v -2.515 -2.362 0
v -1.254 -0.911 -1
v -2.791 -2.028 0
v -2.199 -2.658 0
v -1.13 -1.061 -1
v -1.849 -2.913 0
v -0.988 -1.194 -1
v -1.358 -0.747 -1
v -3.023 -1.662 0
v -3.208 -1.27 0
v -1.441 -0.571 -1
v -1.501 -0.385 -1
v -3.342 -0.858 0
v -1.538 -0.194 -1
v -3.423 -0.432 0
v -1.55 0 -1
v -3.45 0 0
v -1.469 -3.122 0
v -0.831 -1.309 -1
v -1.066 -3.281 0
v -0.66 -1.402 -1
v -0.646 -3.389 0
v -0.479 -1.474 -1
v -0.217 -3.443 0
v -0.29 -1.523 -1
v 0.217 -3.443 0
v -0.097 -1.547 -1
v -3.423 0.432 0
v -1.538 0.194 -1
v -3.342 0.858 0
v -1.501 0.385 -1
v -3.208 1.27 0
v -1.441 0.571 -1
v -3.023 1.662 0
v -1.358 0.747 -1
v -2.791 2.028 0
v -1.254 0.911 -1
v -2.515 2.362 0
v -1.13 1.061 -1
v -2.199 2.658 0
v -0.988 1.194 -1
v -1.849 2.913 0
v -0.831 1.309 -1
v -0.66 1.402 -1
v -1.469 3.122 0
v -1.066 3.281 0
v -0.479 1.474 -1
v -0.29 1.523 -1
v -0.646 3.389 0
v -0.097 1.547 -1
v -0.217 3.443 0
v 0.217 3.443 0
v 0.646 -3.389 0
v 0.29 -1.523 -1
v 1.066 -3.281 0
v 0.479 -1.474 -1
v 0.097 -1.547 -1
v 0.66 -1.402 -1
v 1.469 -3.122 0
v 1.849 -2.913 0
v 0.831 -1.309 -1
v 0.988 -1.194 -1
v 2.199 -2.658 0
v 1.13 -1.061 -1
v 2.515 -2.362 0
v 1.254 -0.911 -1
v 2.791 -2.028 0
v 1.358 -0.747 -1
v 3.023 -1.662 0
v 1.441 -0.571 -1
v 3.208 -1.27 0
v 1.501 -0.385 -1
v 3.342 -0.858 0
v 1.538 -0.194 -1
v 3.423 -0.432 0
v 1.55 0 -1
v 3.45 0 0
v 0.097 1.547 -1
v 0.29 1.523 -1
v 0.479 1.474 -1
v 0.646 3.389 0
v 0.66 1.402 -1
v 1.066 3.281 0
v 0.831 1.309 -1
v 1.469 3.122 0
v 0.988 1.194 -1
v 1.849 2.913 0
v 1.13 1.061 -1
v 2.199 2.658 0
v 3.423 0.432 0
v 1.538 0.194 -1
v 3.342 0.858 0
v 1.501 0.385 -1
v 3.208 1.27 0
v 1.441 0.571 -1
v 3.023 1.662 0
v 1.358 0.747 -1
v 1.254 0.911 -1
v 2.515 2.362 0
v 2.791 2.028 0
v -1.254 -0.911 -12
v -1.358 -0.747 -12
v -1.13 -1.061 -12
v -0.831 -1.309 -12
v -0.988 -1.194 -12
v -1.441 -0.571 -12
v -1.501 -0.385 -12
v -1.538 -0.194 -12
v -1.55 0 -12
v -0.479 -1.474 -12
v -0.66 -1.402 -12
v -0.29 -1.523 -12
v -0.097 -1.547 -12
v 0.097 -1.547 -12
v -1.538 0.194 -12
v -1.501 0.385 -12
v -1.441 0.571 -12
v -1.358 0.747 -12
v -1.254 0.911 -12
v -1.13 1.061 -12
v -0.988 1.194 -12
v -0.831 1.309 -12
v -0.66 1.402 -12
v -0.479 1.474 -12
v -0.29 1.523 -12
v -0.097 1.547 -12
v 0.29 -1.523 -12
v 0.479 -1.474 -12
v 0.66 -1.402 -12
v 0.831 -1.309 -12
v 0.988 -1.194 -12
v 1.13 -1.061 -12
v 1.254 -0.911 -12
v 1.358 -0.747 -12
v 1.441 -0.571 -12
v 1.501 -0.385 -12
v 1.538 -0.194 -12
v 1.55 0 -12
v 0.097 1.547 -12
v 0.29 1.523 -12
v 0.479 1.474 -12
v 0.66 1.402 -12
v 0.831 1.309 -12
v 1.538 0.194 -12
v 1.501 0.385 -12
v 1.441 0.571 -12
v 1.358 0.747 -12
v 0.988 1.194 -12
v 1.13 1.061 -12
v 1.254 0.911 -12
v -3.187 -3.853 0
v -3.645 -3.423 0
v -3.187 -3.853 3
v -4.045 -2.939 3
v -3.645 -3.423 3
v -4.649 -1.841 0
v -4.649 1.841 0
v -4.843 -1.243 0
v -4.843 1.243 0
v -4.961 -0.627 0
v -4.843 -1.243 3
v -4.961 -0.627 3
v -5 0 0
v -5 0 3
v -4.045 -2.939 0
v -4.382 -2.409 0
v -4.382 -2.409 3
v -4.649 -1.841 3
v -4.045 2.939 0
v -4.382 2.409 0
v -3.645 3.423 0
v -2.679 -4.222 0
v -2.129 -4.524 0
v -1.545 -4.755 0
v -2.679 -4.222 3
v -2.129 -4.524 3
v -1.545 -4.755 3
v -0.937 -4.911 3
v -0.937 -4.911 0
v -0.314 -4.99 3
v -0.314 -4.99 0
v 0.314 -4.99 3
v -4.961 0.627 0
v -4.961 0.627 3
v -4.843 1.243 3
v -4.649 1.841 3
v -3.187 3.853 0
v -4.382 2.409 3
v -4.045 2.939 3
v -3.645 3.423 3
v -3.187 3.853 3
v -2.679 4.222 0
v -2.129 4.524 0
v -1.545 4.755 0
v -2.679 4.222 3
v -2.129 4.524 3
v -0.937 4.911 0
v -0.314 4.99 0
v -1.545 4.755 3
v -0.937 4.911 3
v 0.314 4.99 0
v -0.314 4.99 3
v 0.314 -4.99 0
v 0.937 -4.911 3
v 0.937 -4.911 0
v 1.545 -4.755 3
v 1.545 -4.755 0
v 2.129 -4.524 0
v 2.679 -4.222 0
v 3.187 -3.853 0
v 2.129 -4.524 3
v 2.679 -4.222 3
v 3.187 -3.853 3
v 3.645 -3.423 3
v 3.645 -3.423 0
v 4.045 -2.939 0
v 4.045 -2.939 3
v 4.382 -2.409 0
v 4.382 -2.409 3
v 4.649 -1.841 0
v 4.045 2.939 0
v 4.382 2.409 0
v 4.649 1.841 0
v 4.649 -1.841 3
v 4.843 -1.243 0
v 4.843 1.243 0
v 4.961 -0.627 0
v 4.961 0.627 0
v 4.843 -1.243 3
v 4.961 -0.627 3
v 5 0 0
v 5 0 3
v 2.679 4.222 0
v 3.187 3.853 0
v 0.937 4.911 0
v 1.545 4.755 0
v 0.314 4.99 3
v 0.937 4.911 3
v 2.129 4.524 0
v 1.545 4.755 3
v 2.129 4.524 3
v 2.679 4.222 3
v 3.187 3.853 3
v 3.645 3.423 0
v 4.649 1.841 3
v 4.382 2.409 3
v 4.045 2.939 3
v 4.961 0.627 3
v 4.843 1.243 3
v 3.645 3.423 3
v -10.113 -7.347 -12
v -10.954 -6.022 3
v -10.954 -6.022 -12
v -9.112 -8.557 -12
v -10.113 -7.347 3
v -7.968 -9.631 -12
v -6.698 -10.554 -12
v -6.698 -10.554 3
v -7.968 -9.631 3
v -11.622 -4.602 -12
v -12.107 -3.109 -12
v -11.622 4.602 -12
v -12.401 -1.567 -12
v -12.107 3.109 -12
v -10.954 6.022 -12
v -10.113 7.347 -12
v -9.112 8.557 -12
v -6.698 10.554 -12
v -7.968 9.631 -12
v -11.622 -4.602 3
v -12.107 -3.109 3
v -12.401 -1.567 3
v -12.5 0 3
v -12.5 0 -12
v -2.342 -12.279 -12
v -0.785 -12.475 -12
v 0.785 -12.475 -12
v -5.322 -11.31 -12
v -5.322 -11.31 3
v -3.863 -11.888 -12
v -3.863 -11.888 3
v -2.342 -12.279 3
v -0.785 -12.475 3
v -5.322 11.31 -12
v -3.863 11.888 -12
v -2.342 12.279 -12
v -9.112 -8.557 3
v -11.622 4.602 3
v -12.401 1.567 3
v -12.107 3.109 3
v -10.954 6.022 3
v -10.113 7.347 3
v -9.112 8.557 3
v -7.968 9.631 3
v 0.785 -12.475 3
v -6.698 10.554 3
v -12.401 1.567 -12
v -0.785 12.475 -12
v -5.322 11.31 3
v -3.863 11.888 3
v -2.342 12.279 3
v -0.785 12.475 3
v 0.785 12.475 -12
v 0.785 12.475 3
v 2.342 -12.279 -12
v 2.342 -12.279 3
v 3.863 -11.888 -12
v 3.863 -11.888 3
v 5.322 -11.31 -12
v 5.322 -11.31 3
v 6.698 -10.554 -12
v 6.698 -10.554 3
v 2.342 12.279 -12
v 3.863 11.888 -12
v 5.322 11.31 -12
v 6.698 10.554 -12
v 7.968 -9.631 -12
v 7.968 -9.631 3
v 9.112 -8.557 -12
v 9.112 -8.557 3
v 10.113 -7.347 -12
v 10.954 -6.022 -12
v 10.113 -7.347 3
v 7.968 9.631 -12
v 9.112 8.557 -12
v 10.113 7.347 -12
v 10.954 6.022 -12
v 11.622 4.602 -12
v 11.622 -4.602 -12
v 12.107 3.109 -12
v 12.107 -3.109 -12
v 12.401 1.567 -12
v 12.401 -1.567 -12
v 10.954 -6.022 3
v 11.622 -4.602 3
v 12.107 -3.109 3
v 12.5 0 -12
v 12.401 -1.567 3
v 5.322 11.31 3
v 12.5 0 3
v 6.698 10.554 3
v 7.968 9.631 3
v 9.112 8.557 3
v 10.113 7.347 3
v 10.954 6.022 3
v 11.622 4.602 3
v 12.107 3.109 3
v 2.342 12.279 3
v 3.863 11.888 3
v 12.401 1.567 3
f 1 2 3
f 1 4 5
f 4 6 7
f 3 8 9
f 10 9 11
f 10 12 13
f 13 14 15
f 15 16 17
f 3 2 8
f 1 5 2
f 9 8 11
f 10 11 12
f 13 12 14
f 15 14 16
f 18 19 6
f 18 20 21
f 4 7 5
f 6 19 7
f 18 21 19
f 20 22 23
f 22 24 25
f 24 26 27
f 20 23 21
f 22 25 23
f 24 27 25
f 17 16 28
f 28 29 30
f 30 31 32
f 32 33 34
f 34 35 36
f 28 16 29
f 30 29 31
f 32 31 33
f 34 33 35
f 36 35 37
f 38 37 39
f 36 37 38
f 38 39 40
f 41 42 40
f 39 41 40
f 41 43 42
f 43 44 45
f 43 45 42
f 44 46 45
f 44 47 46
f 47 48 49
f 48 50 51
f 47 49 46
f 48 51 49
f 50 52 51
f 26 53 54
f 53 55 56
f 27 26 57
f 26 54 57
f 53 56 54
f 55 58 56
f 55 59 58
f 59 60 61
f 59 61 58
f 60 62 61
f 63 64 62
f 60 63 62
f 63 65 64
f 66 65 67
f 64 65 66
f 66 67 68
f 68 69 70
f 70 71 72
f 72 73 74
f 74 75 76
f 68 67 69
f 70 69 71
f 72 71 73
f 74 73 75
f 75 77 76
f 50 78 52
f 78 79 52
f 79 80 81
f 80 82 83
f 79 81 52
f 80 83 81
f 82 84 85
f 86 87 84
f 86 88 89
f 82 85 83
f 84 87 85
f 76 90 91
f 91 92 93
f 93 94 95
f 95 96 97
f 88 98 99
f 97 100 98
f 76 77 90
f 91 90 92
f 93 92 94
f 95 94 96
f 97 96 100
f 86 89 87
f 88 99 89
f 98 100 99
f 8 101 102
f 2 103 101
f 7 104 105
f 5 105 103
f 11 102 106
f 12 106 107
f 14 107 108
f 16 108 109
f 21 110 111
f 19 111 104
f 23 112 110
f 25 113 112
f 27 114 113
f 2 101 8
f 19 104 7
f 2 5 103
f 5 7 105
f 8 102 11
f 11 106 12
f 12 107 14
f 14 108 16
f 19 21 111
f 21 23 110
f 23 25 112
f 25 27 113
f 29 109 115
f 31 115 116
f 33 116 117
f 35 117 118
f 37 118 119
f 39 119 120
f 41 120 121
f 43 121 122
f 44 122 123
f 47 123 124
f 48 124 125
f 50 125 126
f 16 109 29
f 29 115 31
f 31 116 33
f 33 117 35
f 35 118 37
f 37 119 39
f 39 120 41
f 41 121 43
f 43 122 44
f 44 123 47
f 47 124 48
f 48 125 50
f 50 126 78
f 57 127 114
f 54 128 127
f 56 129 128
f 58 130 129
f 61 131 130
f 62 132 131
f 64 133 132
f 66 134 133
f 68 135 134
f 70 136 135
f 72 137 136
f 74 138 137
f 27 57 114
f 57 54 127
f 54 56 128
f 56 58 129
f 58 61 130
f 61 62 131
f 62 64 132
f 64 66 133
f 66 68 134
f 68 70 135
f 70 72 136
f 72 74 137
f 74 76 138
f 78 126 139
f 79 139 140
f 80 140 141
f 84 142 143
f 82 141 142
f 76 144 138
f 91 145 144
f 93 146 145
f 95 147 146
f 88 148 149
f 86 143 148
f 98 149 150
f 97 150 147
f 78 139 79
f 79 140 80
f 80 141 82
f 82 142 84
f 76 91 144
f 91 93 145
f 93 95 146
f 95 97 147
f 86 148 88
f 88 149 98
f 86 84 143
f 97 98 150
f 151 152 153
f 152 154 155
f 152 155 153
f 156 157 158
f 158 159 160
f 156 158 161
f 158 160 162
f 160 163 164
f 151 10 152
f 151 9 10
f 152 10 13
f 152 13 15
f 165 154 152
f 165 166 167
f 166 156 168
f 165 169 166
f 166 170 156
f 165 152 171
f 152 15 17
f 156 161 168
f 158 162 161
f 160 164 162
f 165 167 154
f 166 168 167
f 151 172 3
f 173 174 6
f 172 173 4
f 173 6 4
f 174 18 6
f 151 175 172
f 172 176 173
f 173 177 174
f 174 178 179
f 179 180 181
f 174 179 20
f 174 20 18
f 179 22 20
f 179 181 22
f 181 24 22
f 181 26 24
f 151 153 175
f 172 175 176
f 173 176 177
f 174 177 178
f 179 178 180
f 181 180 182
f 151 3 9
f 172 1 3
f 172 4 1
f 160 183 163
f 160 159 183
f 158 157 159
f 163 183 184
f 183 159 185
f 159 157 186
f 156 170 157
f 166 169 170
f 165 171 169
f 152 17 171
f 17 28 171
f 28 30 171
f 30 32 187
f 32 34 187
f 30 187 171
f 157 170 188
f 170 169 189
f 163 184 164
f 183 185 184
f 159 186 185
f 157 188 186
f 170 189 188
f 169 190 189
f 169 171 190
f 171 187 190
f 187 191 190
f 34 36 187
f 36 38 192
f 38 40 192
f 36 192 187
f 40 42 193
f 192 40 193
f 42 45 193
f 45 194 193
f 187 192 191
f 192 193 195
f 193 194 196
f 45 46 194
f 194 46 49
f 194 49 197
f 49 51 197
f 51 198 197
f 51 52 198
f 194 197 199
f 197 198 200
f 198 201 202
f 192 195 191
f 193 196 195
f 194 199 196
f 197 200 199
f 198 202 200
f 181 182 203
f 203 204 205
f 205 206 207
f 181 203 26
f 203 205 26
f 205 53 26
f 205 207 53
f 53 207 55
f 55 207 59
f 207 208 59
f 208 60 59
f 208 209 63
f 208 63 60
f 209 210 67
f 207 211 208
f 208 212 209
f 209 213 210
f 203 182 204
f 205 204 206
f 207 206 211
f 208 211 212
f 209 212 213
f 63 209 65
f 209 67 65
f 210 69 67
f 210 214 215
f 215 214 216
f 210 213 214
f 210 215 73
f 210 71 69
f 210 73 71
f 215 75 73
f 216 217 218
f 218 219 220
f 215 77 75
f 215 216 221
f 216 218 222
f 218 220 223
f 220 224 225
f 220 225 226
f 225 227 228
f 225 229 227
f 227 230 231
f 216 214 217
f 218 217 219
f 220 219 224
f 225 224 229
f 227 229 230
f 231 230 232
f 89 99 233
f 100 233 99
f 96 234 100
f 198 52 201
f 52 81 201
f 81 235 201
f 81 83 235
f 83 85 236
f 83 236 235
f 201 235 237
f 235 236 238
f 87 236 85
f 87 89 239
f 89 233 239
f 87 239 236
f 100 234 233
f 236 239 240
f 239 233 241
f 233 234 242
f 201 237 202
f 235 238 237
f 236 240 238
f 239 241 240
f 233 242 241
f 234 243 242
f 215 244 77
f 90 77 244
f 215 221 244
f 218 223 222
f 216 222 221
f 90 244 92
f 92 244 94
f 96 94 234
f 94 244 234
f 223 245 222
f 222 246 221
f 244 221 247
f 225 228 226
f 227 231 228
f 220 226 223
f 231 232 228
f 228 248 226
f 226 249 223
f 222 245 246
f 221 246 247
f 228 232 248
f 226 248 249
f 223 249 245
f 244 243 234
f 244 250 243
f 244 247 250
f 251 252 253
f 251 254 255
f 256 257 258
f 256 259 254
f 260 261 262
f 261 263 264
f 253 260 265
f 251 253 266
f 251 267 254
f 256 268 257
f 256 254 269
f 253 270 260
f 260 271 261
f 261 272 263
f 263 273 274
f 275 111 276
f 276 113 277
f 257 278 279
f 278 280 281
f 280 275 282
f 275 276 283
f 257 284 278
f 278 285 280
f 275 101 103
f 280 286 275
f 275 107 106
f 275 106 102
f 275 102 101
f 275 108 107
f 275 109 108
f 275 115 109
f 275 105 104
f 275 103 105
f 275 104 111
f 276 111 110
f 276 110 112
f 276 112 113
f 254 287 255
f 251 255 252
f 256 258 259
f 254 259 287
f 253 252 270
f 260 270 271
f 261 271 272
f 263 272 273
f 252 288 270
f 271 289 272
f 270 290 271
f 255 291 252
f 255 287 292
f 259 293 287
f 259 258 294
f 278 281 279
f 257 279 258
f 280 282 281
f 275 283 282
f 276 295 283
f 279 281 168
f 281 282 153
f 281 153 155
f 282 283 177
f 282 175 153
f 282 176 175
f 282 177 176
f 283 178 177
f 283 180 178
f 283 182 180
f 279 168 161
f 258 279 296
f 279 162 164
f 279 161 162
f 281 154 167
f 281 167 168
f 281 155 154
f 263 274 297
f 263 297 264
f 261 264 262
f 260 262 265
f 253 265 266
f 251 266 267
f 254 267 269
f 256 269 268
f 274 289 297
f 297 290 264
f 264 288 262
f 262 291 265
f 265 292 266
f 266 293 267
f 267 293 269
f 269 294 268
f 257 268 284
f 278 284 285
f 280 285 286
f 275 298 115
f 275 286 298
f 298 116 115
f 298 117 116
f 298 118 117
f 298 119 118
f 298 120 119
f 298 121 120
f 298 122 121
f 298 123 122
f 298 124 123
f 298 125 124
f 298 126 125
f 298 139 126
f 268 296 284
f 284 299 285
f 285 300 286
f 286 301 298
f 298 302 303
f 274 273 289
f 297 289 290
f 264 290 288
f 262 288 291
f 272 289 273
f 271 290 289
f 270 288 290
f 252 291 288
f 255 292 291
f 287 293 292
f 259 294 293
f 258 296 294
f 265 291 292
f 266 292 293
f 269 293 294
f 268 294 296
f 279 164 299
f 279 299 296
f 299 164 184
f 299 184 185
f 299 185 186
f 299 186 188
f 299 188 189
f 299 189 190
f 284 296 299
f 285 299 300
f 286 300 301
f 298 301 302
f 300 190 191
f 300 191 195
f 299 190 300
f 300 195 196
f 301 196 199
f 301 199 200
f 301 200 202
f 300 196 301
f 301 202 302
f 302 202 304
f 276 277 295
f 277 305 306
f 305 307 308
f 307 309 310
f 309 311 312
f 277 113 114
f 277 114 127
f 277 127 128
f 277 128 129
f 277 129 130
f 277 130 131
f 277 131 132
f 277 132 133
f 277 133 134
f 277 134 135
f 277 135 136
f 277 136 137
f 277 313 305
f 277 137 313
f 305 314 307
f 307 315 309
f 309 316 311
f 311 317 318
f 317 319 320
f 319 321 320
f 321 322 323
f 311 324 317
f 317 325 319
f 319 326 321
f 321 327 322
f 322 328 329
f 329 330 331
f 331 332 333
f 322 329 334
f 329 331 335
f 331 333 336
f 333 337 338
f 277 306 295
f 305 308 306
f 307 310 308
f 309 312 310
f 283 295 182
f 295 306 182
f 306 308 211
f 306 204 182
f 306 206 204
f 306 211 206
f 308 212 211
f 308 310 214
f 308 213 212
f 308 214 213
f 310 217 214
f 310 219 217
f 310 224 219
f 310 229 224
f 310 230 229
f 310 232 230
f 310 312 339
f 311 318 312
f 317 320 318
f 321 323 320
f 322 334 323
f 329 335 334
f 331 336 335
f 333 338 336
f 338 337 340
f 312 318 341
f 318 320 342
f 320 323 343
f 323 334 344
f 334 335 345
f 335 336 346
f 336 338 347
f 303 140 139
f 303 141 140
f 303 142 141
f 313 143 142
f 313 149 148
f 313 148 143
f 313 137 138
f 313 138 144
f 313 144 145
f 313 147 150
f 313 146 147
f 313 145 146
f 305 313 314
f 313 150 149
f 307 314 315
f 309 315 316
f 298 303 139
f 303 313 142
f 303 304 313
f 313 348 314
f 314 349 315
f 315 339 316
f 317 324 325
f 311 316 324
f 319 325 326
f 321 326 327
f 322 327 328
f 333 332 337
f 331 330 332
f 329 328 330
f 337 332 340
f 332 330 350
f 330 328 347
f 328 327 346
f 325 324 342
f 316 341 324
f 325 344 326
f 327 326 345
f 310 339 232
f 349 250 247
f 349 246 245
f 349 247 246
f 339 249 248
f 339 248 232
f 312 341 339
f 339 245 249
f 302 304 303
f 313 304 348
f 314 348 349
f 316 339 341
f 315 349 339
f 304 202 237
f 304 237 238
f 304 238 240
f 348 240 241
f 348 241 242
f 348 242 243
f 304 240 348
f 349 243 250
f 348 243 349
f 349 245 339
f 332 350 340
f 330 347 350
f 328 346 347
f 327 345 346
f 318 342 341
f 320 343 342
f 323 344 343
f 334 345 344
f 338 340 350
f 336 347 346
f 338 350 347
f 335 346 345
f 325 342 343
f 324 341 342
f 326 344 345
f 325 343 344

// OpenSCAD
$fn = 50;

difference() {
	union() {
		translate(v = [0, 0, -12.0]) {
			cylinder(h = 15, r = 12.5);
		}
	}
	union() {
		translate(v = [0, 0, 0]) {
			rotate(a = [0, 0, 0]) {
				difference() {
					union() {
						translate(v = [0, 0, -15.0]) {
							cylinder(h = 15, r = 1.25);
						}
						translate(v = [0, 0, -1.0]) {
							cylinder(h = 1.0, r1 = 1.55, r2 = 3.45);
						}
						translate(v = [0, 0, -15.0]) {
							cylinder(h = 15, r = 1.55);
						}
						translate(v = [0, 0, -15.0]) {
							cylinder(h = 15, r = 1.25);
						}
					}
					union();
				}
			}
		}
		#cylinder(h = 3, r = 5.0);
	}
}
